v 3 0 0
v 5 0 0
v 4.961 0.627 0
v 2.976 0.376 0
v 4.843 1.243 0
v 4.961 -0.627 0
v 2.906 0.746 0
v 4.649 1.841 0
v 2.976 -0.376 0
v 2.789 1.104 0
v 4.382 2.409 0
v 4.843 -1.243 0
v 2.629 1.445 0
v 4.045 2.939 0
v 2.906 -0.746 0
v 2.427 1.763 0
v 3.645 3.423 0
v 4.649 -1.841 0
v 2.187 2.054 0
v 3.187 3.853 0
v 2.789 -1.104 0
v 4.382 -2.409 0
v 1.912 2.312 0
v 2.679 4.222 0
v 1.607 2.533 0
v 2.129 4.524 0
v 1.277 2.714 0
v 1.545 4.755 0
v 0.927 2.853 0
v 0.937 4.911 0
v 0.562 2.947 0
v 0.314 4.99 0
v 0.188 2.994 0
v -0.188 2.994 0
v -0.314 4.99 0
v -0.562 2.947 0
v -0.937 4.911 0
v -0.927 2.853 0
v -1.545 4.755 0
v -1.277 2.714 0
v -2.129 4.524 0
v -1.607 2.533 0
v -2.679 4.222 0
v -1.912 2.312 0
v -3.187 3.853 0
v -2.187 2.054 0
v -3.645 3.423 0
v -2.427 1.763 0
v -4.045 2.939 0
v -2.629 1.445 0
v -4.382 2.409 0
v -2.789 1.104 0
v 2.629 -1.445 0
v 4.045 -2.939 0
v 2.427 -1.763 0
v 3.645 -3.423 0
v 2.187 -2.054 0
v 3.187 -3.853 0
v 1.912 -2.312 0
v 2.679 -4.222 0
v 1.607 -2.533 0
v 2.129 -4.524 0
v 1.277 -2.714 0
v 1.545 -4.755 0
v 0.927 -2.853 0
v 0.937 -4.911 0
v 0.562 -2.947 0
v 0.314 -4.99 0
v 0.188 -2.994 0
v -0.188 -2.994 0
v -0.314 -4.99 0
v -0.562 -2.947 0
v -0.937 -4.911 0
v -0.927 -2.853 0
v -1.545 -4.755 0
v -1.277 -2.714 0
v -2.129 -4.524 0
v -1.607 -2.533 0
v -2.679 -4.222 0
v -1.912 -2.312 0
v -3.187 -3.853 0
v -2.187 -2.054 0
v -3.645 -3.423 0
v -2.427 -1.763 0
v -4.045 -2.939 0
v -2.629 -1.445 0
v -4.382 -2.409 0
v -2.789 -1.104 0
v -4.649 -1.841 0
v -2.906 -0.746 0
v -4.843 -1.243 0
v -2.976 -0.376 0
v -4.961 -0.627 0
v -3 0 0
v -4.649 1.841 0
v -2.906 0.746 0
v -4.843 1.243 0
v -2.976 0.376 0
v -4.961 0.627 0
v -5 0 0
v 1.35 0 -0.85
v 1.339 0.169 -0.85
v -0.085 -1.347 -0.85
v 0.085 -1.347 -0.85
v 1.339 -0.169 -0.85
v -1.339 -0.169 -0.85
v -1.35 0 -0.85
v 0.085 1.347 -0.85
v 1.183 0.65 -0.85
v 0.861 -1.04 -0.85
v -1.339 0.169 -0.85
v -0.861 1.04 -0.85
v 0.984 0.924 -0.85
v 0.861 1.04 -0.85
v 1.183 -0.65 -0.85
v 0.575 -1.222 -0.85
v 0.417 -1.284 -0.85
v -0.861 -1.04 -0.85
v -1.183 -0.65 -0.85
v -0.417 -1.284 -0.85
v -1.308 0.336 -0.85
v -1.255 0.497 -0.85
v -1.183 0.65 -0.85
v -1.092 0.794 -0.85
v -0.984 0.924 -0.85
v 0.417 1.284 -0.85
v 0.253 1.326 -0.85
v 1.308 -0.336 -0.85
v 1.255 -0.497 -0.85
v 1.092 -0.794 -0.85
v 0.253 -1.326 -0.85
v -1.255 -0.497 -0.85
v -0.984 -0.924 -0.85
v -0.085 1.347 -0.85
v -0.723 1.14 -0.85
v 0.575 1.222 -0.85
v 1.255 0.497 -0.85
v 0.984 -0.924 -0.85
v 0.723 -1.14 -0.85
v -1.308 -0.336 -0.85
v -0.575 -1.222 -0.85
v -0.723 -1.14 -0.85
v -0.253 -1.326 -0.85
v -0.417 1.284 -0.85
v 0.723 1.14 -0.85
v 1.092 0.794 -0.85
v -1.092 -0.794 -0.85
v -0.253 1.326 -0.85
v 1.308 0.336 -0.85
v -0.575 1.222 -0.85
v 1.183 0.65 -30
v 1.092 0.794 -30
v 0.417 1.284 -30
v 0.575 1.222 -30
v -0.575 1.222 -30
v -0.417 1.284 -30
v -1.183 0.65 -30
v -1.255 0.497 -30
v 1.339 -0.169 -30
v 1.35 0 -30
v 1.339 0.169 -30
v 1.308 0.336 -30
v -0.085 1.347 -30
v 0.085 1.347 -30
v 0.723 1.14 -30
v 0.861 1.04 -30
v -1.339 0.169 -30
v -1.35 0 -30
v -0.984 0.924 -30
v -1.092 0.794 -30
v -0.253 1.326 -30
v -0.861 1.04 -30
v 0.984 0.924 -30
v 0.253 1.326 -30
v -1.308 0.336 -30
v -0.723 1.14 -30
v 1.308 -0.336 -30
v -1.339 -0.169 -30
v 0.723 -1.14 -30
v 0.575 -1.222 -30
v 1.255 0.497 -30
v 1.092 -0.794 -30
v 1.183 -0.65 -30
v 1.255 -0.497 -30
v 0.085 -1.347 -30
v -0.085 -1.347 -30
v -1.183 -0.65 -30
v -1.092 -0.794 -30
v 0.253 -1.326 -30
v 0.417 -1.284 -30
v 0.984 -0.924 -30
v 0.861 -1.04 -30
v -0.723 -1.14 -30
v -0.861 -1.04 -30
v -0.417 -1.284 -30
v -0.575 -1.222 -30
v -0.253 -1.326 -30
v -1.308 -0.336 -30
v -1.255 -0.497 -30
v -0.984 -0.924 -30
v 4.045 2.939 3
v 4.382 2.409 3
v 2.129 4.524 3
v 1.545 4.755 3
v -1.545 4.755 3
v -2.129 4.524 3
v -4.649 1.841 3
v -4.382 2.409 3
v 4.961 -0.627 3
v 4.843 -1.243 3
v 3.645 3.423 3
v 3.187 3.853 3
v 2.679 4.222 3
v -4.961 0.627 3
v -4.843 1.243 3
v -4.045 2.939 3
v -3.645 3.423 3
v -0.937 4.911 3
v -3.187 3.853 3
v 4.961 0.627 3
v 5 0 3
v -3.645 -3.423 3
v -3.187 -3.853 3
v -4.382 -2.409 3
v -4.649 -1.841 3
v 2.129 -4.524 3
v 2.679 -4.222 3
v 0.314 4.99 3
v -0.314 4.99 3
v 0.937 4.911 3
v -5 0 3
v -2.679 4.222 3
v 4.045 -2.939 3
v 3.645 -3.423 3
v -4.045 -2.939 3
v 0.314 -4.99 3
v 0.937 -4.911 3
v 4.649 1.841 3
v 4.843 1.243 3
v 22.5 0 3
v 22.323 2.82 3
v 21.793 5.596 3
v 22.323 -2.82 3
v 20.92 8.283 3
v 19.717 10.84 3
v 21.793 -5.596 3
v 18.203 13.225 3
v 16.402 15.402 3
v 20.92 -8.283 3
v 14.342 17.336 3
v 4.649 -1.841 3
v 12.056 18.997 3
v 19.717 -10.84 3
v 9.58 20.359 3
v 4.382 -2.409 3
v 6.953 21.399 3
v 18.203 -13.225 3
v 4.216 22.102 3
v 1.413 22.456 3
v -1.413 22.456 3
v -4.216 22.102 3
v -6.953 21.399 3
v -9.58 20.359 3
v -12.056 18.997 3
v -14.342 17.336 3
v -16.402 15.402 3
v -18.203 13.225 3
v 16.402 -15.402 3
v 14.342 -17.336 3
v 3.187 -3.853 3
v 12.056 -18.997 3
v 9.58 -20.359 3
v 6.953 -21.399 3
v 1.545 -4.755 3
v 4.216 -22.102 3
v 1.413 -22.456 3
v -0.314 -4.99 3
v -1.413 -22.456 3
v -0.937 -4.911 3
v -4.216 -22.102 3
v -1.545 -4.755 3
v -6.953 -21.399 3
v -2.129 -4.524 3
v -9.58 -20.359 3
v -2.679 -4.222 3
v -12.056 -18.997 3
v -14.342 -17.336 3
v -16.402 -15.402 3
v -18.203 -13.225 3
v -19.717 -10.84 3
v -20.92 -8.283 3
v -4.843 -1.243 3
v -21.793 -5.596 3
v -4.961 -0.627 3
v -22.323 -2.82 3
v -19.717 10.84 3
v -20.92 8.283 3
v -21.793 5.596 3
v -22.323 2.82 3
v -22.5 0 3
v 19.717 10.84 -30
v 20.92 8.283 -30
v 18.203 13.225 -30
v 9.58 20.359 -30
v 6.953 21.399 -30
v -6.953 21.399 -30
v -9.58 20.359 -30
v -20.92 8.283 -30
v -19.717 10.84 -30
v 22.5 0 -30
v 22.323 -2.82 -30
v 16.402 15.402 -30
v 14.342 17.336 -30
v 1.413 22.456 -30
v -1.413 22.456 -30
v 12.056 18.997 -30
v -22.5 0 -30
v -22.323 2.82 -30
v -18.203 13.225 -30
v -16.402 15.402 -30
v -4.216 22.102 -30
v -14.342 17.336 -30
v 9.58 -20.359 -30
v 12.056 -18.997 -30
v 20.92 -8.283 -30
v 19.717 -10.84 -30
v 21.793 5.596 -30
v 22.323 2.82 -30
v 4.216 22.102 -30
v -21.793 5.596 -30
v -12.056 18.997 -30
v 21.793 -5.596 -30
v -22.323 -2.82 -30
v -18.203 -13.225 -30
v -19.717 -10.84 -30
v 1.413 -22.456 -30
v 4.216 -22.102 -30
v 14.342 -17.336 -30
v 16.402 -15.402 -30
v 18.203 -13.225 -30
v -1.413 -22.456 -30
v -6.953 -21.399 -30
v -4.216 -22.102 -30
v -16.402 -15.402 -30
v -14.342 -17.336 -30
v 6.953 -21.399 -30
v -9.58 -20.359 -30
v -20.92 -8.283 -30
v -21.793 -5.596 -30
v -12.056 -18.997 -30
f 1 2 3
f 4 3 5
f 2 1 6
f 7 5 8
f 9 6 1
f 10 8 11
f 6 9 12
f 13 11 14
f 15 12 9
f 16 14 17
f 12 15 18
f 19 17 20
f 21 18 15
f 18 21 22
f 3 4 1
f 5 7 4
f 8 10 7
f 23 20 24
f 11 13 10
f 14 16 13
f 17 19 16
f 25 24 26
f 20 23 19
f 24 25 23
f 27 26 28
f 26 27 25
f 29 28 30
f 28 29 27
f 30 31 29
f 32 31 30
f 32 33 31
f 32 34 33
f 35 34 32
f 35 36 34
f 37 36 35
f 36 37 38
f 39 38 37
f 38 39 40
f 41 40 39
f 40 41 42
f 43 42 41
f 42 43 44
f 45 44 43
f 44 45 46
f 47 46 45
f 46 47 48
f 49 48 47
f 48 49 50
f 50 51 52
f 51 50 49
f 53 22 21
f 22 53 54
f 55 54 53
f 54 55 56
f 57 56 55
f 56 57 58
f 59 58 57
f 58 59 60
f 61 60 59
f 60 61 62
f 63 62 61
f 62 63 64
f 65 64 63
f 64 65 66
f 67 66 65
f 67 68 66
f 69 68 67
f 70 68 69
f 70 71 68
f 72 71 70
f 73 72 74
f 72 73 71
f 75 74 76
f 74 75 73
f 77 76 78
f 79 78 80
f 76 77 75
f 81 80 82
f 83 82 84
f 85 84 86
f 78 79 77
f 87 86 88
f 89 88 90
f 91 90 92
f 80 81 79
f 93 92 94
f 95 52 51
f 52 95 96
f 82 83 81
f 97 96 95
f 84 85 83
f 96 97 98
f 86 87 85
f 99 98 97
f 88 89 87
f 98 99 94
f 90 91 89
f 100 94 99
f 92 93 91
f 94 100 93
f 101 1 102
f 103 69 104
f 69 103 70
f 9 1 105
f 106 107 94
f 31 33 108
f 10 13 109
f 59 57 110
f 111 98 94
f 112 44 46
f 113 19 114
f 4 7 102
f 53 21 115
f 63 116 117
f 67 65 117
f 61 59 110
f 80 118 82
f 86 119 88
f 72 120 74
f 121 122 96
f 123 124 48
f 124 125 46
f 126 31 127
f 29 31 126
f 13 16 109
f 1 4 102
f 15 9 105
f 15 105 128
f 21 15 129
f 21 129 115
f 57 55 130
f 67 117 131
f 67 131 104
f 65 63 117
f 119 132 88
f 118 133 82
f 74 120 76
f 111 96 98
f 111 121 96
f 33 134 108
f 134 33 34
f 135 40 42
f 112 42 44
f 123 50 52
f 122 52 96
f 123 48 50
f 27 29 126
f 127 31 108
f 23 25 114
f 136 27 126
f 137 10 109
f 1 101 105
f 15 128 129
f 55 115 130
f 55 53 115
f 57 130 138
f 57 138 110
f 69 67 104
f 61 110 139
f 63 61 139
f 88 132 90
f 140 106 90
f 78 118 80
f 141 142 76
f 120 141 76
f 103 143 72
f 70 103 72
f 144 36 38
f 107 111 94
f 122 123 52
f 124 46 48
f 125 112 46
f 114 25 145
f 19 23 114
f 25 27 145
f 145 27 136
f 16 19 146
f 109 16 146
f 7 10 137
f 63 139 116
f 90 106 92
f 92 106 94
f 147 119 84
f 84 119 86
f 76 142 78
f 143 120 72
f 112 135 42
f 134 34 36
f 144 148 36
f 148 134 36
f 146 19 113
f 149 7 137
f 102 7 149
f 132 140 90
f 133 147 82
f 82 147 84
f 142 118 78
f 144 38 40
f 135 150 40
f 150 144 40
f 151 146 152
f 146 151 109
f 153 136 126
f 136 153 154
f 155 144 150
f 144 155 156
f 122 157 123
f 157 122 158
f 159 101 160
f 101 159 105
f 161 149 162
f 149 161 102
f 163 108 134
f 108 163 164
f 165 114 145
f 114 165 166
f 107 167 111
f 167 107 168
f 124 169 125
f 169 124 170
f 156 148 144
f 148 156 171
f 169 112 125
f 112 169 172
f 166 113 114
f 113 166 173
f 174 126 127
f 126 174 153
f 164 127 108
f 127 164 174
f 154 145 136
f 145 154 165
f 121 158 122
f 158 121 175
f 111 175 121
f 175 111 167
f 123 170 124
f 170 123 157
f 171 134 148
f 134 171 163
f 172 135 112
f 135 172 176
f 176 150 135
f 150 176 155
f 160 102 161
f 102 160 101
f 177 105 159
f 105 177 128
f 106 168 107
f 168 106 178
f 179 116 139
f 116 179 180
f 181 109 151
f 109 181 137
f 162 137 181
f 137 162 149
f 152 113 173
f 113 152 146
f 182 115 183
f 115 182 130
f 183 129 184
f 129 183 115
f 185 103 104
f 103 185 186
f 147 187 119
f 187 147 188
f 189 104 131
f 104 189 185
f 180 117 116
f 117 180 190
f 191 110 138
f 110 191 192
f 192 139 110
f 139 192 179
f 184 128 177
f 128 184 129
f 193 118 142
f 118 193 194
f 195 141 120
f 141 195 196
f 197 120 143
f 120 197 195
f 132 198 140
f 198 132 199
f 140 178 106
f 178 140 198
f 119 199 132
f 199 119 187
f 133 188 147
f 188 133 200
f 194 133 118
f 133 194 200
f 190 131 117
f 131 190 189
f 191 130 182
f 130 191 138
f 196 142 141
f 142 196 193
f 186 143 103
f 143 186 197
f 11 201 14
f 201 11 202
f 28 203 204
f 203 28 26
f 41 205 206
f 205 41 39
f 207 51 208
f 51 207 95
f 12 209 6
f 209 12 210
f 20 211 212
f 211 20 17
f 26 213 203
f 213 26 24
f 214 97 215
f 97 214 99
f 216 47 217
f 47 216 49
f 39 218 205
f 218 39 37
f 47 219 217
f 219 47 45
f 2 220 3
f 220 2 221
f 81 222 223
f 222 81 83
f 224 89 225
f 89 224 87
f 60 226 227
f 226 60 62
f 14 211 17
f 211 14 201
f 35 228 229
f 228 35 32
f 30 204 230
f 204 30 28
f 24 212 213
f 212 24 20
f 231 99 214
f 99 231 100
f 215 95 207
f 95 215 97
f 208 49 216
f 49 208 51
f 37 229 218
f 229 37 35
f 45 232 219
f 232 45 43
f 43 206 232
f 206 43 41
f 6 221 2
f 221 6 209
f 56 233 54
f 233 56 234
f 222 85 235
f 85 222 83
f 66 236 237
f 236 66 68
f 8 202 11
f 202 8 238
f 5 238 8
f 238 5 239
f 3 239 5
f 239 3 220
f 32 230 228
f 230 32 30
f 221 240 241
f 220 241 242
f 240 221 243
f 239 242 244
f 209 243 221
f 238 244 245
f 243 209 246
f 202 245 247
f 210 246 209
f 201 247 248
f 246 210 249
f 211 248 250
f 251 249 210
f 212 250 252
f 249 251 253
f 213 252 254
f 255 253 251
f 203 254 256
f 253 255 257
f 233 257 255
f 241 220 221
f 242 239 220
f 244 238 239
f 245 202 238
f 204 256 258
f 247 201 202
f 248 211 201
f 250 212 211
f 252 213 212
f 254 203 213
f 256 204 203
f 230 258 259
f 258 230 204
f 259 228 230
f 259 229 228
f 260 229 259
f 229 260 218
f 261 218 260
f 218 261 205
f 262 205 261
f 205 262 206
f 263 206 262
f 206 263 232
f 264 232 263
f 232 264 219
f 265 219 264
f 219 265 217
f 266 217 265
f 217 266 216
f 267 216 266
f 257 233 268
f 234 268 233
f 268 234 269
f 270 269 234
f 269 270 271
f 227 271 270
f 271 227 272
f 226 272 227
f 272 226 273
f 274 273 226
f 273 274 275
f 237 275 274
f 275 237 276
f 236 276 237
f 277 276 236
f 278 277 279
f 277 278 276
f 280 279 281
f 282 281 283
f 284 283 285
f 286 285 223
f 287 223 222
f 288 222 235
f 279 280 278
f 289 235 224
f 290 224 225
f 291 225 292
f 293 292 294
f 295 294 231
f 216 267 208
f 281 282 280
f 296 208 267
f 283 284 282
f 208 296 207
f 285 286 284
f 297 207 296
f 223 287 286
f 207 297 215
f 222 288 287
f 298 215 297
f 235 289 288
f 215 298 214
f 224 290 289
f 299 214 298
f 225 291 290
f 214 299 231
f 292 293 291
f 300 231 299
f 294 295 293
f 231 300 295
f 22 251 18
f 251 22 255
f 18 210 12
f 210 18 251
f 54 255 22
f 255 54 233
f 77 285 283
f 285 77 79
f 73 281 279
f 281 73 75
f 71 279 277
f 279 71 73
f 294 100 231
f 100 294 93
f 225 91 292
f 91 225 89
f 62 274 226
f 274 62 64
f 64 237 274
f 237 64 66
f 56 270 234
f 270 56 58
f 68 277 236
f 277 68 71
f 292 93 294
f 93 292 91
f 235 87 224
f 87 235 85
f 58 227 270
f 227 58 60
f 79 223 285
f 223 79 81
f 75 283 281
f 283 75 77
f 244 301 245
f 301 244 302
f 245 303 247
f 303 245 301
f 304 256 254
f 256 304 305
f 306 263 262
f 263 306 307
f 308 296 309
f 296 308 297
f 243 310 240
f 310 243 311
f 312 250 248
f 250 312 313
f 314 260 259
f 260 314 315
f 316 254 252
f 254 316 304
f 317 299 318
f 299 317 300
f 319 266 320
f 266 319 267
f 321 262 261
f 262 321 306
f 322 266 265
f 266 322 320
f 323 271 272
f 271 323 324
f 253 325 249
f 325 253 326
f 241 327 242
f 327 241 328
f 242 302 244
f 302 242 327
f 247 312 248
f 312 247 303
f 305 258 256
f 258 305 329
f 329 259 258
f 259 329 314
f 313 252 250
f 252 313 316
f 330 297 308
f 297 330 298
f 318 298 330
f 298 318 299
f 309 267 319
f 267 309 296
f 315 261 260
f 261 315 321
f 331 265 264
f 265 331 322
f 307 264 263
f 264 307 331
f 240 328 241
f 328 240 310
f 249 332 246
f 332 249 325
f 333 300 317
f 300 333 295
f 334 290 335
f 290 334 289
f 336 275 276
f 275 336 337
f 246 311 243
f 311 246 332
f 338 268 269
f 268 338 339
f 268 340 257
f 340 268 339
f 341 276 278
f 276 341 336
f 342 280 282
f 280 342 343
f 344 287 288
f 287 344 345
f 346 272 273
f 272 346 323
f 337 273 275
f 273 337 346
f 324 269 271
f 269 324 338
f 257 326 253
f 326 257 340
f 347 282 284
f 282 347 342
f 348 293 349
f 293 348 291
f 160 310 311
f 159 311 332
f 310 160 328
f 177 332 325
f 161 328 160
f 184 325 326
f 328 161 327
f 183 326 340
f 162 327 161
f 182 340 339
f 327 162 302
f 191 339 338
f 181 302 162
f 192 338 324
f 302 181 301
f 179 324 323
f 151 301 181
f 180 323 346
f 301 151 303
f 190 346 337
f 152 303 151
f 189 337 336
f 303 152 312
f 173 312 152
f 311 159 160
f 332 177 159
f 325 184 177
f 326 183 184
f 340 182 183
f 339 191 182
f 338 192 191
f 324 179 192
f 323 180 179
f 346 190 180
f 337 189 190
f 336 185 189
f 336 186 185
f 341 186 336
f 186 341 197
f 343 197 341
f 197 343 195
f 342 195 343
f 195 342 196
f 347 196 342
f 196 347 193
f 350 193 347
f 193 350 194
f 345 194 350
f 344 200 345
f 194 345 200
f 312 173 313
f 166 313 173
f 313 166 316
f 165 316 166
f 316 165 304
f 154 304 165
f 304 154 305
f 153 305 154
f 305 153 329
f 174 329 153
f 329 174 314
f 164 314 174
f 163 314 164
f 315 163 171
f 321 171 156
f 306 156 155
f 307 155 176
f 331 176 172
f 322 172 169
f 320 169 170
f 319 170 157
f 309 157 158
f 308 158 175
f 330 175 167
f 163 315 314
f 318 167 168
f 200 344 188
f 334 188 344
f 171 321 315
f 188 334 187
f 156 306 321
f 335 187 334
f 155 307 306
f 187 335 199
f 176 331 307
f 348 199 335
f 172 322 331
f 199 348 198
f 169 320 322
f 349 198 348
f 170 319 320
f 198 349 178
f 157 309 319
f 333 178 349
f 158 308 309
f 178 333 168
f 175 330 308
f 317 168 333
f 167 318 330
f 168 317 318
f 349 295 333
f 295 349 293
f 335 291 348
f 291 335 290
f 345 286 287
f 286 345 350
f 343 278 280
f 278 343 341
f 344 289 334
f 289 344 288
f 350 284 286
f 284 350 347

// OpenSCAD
$fn = 50;


difference() {
	union() {
		translate(v = [0, 0, -30.0000000000]) {
			cylinder(h = 33, r = 22.5000000000);
		}
	}
	union() {
		translate(v = [0, 0, 0]) {
			rotate(a = [0, 0, 0]) {
				difference() {
					union() {
						translate(v = [0, 0, -33.0000000000]) {
							cylinder(h = 33, r = 1.0000000000);
						}
						translate(v = [0, 0, -0.8500000000]) {
							cylinder(h = 0.8500000000, r1 = 1.3500000000, r2 = 3.0000000000);
						}
						translate(v = [0, 0, -33.0000000000]) {
							cylinder(h = 33, r = 1.3500000000);
						}
						translate(v = [0, 0, -33.0000000000]) {
							cylinder(h = 33, r = 1.0000000000);
						}
					}
					union();
				}
			}
		}
		#cylinder(h = 3, r = 5.0000000000);
	}
}
